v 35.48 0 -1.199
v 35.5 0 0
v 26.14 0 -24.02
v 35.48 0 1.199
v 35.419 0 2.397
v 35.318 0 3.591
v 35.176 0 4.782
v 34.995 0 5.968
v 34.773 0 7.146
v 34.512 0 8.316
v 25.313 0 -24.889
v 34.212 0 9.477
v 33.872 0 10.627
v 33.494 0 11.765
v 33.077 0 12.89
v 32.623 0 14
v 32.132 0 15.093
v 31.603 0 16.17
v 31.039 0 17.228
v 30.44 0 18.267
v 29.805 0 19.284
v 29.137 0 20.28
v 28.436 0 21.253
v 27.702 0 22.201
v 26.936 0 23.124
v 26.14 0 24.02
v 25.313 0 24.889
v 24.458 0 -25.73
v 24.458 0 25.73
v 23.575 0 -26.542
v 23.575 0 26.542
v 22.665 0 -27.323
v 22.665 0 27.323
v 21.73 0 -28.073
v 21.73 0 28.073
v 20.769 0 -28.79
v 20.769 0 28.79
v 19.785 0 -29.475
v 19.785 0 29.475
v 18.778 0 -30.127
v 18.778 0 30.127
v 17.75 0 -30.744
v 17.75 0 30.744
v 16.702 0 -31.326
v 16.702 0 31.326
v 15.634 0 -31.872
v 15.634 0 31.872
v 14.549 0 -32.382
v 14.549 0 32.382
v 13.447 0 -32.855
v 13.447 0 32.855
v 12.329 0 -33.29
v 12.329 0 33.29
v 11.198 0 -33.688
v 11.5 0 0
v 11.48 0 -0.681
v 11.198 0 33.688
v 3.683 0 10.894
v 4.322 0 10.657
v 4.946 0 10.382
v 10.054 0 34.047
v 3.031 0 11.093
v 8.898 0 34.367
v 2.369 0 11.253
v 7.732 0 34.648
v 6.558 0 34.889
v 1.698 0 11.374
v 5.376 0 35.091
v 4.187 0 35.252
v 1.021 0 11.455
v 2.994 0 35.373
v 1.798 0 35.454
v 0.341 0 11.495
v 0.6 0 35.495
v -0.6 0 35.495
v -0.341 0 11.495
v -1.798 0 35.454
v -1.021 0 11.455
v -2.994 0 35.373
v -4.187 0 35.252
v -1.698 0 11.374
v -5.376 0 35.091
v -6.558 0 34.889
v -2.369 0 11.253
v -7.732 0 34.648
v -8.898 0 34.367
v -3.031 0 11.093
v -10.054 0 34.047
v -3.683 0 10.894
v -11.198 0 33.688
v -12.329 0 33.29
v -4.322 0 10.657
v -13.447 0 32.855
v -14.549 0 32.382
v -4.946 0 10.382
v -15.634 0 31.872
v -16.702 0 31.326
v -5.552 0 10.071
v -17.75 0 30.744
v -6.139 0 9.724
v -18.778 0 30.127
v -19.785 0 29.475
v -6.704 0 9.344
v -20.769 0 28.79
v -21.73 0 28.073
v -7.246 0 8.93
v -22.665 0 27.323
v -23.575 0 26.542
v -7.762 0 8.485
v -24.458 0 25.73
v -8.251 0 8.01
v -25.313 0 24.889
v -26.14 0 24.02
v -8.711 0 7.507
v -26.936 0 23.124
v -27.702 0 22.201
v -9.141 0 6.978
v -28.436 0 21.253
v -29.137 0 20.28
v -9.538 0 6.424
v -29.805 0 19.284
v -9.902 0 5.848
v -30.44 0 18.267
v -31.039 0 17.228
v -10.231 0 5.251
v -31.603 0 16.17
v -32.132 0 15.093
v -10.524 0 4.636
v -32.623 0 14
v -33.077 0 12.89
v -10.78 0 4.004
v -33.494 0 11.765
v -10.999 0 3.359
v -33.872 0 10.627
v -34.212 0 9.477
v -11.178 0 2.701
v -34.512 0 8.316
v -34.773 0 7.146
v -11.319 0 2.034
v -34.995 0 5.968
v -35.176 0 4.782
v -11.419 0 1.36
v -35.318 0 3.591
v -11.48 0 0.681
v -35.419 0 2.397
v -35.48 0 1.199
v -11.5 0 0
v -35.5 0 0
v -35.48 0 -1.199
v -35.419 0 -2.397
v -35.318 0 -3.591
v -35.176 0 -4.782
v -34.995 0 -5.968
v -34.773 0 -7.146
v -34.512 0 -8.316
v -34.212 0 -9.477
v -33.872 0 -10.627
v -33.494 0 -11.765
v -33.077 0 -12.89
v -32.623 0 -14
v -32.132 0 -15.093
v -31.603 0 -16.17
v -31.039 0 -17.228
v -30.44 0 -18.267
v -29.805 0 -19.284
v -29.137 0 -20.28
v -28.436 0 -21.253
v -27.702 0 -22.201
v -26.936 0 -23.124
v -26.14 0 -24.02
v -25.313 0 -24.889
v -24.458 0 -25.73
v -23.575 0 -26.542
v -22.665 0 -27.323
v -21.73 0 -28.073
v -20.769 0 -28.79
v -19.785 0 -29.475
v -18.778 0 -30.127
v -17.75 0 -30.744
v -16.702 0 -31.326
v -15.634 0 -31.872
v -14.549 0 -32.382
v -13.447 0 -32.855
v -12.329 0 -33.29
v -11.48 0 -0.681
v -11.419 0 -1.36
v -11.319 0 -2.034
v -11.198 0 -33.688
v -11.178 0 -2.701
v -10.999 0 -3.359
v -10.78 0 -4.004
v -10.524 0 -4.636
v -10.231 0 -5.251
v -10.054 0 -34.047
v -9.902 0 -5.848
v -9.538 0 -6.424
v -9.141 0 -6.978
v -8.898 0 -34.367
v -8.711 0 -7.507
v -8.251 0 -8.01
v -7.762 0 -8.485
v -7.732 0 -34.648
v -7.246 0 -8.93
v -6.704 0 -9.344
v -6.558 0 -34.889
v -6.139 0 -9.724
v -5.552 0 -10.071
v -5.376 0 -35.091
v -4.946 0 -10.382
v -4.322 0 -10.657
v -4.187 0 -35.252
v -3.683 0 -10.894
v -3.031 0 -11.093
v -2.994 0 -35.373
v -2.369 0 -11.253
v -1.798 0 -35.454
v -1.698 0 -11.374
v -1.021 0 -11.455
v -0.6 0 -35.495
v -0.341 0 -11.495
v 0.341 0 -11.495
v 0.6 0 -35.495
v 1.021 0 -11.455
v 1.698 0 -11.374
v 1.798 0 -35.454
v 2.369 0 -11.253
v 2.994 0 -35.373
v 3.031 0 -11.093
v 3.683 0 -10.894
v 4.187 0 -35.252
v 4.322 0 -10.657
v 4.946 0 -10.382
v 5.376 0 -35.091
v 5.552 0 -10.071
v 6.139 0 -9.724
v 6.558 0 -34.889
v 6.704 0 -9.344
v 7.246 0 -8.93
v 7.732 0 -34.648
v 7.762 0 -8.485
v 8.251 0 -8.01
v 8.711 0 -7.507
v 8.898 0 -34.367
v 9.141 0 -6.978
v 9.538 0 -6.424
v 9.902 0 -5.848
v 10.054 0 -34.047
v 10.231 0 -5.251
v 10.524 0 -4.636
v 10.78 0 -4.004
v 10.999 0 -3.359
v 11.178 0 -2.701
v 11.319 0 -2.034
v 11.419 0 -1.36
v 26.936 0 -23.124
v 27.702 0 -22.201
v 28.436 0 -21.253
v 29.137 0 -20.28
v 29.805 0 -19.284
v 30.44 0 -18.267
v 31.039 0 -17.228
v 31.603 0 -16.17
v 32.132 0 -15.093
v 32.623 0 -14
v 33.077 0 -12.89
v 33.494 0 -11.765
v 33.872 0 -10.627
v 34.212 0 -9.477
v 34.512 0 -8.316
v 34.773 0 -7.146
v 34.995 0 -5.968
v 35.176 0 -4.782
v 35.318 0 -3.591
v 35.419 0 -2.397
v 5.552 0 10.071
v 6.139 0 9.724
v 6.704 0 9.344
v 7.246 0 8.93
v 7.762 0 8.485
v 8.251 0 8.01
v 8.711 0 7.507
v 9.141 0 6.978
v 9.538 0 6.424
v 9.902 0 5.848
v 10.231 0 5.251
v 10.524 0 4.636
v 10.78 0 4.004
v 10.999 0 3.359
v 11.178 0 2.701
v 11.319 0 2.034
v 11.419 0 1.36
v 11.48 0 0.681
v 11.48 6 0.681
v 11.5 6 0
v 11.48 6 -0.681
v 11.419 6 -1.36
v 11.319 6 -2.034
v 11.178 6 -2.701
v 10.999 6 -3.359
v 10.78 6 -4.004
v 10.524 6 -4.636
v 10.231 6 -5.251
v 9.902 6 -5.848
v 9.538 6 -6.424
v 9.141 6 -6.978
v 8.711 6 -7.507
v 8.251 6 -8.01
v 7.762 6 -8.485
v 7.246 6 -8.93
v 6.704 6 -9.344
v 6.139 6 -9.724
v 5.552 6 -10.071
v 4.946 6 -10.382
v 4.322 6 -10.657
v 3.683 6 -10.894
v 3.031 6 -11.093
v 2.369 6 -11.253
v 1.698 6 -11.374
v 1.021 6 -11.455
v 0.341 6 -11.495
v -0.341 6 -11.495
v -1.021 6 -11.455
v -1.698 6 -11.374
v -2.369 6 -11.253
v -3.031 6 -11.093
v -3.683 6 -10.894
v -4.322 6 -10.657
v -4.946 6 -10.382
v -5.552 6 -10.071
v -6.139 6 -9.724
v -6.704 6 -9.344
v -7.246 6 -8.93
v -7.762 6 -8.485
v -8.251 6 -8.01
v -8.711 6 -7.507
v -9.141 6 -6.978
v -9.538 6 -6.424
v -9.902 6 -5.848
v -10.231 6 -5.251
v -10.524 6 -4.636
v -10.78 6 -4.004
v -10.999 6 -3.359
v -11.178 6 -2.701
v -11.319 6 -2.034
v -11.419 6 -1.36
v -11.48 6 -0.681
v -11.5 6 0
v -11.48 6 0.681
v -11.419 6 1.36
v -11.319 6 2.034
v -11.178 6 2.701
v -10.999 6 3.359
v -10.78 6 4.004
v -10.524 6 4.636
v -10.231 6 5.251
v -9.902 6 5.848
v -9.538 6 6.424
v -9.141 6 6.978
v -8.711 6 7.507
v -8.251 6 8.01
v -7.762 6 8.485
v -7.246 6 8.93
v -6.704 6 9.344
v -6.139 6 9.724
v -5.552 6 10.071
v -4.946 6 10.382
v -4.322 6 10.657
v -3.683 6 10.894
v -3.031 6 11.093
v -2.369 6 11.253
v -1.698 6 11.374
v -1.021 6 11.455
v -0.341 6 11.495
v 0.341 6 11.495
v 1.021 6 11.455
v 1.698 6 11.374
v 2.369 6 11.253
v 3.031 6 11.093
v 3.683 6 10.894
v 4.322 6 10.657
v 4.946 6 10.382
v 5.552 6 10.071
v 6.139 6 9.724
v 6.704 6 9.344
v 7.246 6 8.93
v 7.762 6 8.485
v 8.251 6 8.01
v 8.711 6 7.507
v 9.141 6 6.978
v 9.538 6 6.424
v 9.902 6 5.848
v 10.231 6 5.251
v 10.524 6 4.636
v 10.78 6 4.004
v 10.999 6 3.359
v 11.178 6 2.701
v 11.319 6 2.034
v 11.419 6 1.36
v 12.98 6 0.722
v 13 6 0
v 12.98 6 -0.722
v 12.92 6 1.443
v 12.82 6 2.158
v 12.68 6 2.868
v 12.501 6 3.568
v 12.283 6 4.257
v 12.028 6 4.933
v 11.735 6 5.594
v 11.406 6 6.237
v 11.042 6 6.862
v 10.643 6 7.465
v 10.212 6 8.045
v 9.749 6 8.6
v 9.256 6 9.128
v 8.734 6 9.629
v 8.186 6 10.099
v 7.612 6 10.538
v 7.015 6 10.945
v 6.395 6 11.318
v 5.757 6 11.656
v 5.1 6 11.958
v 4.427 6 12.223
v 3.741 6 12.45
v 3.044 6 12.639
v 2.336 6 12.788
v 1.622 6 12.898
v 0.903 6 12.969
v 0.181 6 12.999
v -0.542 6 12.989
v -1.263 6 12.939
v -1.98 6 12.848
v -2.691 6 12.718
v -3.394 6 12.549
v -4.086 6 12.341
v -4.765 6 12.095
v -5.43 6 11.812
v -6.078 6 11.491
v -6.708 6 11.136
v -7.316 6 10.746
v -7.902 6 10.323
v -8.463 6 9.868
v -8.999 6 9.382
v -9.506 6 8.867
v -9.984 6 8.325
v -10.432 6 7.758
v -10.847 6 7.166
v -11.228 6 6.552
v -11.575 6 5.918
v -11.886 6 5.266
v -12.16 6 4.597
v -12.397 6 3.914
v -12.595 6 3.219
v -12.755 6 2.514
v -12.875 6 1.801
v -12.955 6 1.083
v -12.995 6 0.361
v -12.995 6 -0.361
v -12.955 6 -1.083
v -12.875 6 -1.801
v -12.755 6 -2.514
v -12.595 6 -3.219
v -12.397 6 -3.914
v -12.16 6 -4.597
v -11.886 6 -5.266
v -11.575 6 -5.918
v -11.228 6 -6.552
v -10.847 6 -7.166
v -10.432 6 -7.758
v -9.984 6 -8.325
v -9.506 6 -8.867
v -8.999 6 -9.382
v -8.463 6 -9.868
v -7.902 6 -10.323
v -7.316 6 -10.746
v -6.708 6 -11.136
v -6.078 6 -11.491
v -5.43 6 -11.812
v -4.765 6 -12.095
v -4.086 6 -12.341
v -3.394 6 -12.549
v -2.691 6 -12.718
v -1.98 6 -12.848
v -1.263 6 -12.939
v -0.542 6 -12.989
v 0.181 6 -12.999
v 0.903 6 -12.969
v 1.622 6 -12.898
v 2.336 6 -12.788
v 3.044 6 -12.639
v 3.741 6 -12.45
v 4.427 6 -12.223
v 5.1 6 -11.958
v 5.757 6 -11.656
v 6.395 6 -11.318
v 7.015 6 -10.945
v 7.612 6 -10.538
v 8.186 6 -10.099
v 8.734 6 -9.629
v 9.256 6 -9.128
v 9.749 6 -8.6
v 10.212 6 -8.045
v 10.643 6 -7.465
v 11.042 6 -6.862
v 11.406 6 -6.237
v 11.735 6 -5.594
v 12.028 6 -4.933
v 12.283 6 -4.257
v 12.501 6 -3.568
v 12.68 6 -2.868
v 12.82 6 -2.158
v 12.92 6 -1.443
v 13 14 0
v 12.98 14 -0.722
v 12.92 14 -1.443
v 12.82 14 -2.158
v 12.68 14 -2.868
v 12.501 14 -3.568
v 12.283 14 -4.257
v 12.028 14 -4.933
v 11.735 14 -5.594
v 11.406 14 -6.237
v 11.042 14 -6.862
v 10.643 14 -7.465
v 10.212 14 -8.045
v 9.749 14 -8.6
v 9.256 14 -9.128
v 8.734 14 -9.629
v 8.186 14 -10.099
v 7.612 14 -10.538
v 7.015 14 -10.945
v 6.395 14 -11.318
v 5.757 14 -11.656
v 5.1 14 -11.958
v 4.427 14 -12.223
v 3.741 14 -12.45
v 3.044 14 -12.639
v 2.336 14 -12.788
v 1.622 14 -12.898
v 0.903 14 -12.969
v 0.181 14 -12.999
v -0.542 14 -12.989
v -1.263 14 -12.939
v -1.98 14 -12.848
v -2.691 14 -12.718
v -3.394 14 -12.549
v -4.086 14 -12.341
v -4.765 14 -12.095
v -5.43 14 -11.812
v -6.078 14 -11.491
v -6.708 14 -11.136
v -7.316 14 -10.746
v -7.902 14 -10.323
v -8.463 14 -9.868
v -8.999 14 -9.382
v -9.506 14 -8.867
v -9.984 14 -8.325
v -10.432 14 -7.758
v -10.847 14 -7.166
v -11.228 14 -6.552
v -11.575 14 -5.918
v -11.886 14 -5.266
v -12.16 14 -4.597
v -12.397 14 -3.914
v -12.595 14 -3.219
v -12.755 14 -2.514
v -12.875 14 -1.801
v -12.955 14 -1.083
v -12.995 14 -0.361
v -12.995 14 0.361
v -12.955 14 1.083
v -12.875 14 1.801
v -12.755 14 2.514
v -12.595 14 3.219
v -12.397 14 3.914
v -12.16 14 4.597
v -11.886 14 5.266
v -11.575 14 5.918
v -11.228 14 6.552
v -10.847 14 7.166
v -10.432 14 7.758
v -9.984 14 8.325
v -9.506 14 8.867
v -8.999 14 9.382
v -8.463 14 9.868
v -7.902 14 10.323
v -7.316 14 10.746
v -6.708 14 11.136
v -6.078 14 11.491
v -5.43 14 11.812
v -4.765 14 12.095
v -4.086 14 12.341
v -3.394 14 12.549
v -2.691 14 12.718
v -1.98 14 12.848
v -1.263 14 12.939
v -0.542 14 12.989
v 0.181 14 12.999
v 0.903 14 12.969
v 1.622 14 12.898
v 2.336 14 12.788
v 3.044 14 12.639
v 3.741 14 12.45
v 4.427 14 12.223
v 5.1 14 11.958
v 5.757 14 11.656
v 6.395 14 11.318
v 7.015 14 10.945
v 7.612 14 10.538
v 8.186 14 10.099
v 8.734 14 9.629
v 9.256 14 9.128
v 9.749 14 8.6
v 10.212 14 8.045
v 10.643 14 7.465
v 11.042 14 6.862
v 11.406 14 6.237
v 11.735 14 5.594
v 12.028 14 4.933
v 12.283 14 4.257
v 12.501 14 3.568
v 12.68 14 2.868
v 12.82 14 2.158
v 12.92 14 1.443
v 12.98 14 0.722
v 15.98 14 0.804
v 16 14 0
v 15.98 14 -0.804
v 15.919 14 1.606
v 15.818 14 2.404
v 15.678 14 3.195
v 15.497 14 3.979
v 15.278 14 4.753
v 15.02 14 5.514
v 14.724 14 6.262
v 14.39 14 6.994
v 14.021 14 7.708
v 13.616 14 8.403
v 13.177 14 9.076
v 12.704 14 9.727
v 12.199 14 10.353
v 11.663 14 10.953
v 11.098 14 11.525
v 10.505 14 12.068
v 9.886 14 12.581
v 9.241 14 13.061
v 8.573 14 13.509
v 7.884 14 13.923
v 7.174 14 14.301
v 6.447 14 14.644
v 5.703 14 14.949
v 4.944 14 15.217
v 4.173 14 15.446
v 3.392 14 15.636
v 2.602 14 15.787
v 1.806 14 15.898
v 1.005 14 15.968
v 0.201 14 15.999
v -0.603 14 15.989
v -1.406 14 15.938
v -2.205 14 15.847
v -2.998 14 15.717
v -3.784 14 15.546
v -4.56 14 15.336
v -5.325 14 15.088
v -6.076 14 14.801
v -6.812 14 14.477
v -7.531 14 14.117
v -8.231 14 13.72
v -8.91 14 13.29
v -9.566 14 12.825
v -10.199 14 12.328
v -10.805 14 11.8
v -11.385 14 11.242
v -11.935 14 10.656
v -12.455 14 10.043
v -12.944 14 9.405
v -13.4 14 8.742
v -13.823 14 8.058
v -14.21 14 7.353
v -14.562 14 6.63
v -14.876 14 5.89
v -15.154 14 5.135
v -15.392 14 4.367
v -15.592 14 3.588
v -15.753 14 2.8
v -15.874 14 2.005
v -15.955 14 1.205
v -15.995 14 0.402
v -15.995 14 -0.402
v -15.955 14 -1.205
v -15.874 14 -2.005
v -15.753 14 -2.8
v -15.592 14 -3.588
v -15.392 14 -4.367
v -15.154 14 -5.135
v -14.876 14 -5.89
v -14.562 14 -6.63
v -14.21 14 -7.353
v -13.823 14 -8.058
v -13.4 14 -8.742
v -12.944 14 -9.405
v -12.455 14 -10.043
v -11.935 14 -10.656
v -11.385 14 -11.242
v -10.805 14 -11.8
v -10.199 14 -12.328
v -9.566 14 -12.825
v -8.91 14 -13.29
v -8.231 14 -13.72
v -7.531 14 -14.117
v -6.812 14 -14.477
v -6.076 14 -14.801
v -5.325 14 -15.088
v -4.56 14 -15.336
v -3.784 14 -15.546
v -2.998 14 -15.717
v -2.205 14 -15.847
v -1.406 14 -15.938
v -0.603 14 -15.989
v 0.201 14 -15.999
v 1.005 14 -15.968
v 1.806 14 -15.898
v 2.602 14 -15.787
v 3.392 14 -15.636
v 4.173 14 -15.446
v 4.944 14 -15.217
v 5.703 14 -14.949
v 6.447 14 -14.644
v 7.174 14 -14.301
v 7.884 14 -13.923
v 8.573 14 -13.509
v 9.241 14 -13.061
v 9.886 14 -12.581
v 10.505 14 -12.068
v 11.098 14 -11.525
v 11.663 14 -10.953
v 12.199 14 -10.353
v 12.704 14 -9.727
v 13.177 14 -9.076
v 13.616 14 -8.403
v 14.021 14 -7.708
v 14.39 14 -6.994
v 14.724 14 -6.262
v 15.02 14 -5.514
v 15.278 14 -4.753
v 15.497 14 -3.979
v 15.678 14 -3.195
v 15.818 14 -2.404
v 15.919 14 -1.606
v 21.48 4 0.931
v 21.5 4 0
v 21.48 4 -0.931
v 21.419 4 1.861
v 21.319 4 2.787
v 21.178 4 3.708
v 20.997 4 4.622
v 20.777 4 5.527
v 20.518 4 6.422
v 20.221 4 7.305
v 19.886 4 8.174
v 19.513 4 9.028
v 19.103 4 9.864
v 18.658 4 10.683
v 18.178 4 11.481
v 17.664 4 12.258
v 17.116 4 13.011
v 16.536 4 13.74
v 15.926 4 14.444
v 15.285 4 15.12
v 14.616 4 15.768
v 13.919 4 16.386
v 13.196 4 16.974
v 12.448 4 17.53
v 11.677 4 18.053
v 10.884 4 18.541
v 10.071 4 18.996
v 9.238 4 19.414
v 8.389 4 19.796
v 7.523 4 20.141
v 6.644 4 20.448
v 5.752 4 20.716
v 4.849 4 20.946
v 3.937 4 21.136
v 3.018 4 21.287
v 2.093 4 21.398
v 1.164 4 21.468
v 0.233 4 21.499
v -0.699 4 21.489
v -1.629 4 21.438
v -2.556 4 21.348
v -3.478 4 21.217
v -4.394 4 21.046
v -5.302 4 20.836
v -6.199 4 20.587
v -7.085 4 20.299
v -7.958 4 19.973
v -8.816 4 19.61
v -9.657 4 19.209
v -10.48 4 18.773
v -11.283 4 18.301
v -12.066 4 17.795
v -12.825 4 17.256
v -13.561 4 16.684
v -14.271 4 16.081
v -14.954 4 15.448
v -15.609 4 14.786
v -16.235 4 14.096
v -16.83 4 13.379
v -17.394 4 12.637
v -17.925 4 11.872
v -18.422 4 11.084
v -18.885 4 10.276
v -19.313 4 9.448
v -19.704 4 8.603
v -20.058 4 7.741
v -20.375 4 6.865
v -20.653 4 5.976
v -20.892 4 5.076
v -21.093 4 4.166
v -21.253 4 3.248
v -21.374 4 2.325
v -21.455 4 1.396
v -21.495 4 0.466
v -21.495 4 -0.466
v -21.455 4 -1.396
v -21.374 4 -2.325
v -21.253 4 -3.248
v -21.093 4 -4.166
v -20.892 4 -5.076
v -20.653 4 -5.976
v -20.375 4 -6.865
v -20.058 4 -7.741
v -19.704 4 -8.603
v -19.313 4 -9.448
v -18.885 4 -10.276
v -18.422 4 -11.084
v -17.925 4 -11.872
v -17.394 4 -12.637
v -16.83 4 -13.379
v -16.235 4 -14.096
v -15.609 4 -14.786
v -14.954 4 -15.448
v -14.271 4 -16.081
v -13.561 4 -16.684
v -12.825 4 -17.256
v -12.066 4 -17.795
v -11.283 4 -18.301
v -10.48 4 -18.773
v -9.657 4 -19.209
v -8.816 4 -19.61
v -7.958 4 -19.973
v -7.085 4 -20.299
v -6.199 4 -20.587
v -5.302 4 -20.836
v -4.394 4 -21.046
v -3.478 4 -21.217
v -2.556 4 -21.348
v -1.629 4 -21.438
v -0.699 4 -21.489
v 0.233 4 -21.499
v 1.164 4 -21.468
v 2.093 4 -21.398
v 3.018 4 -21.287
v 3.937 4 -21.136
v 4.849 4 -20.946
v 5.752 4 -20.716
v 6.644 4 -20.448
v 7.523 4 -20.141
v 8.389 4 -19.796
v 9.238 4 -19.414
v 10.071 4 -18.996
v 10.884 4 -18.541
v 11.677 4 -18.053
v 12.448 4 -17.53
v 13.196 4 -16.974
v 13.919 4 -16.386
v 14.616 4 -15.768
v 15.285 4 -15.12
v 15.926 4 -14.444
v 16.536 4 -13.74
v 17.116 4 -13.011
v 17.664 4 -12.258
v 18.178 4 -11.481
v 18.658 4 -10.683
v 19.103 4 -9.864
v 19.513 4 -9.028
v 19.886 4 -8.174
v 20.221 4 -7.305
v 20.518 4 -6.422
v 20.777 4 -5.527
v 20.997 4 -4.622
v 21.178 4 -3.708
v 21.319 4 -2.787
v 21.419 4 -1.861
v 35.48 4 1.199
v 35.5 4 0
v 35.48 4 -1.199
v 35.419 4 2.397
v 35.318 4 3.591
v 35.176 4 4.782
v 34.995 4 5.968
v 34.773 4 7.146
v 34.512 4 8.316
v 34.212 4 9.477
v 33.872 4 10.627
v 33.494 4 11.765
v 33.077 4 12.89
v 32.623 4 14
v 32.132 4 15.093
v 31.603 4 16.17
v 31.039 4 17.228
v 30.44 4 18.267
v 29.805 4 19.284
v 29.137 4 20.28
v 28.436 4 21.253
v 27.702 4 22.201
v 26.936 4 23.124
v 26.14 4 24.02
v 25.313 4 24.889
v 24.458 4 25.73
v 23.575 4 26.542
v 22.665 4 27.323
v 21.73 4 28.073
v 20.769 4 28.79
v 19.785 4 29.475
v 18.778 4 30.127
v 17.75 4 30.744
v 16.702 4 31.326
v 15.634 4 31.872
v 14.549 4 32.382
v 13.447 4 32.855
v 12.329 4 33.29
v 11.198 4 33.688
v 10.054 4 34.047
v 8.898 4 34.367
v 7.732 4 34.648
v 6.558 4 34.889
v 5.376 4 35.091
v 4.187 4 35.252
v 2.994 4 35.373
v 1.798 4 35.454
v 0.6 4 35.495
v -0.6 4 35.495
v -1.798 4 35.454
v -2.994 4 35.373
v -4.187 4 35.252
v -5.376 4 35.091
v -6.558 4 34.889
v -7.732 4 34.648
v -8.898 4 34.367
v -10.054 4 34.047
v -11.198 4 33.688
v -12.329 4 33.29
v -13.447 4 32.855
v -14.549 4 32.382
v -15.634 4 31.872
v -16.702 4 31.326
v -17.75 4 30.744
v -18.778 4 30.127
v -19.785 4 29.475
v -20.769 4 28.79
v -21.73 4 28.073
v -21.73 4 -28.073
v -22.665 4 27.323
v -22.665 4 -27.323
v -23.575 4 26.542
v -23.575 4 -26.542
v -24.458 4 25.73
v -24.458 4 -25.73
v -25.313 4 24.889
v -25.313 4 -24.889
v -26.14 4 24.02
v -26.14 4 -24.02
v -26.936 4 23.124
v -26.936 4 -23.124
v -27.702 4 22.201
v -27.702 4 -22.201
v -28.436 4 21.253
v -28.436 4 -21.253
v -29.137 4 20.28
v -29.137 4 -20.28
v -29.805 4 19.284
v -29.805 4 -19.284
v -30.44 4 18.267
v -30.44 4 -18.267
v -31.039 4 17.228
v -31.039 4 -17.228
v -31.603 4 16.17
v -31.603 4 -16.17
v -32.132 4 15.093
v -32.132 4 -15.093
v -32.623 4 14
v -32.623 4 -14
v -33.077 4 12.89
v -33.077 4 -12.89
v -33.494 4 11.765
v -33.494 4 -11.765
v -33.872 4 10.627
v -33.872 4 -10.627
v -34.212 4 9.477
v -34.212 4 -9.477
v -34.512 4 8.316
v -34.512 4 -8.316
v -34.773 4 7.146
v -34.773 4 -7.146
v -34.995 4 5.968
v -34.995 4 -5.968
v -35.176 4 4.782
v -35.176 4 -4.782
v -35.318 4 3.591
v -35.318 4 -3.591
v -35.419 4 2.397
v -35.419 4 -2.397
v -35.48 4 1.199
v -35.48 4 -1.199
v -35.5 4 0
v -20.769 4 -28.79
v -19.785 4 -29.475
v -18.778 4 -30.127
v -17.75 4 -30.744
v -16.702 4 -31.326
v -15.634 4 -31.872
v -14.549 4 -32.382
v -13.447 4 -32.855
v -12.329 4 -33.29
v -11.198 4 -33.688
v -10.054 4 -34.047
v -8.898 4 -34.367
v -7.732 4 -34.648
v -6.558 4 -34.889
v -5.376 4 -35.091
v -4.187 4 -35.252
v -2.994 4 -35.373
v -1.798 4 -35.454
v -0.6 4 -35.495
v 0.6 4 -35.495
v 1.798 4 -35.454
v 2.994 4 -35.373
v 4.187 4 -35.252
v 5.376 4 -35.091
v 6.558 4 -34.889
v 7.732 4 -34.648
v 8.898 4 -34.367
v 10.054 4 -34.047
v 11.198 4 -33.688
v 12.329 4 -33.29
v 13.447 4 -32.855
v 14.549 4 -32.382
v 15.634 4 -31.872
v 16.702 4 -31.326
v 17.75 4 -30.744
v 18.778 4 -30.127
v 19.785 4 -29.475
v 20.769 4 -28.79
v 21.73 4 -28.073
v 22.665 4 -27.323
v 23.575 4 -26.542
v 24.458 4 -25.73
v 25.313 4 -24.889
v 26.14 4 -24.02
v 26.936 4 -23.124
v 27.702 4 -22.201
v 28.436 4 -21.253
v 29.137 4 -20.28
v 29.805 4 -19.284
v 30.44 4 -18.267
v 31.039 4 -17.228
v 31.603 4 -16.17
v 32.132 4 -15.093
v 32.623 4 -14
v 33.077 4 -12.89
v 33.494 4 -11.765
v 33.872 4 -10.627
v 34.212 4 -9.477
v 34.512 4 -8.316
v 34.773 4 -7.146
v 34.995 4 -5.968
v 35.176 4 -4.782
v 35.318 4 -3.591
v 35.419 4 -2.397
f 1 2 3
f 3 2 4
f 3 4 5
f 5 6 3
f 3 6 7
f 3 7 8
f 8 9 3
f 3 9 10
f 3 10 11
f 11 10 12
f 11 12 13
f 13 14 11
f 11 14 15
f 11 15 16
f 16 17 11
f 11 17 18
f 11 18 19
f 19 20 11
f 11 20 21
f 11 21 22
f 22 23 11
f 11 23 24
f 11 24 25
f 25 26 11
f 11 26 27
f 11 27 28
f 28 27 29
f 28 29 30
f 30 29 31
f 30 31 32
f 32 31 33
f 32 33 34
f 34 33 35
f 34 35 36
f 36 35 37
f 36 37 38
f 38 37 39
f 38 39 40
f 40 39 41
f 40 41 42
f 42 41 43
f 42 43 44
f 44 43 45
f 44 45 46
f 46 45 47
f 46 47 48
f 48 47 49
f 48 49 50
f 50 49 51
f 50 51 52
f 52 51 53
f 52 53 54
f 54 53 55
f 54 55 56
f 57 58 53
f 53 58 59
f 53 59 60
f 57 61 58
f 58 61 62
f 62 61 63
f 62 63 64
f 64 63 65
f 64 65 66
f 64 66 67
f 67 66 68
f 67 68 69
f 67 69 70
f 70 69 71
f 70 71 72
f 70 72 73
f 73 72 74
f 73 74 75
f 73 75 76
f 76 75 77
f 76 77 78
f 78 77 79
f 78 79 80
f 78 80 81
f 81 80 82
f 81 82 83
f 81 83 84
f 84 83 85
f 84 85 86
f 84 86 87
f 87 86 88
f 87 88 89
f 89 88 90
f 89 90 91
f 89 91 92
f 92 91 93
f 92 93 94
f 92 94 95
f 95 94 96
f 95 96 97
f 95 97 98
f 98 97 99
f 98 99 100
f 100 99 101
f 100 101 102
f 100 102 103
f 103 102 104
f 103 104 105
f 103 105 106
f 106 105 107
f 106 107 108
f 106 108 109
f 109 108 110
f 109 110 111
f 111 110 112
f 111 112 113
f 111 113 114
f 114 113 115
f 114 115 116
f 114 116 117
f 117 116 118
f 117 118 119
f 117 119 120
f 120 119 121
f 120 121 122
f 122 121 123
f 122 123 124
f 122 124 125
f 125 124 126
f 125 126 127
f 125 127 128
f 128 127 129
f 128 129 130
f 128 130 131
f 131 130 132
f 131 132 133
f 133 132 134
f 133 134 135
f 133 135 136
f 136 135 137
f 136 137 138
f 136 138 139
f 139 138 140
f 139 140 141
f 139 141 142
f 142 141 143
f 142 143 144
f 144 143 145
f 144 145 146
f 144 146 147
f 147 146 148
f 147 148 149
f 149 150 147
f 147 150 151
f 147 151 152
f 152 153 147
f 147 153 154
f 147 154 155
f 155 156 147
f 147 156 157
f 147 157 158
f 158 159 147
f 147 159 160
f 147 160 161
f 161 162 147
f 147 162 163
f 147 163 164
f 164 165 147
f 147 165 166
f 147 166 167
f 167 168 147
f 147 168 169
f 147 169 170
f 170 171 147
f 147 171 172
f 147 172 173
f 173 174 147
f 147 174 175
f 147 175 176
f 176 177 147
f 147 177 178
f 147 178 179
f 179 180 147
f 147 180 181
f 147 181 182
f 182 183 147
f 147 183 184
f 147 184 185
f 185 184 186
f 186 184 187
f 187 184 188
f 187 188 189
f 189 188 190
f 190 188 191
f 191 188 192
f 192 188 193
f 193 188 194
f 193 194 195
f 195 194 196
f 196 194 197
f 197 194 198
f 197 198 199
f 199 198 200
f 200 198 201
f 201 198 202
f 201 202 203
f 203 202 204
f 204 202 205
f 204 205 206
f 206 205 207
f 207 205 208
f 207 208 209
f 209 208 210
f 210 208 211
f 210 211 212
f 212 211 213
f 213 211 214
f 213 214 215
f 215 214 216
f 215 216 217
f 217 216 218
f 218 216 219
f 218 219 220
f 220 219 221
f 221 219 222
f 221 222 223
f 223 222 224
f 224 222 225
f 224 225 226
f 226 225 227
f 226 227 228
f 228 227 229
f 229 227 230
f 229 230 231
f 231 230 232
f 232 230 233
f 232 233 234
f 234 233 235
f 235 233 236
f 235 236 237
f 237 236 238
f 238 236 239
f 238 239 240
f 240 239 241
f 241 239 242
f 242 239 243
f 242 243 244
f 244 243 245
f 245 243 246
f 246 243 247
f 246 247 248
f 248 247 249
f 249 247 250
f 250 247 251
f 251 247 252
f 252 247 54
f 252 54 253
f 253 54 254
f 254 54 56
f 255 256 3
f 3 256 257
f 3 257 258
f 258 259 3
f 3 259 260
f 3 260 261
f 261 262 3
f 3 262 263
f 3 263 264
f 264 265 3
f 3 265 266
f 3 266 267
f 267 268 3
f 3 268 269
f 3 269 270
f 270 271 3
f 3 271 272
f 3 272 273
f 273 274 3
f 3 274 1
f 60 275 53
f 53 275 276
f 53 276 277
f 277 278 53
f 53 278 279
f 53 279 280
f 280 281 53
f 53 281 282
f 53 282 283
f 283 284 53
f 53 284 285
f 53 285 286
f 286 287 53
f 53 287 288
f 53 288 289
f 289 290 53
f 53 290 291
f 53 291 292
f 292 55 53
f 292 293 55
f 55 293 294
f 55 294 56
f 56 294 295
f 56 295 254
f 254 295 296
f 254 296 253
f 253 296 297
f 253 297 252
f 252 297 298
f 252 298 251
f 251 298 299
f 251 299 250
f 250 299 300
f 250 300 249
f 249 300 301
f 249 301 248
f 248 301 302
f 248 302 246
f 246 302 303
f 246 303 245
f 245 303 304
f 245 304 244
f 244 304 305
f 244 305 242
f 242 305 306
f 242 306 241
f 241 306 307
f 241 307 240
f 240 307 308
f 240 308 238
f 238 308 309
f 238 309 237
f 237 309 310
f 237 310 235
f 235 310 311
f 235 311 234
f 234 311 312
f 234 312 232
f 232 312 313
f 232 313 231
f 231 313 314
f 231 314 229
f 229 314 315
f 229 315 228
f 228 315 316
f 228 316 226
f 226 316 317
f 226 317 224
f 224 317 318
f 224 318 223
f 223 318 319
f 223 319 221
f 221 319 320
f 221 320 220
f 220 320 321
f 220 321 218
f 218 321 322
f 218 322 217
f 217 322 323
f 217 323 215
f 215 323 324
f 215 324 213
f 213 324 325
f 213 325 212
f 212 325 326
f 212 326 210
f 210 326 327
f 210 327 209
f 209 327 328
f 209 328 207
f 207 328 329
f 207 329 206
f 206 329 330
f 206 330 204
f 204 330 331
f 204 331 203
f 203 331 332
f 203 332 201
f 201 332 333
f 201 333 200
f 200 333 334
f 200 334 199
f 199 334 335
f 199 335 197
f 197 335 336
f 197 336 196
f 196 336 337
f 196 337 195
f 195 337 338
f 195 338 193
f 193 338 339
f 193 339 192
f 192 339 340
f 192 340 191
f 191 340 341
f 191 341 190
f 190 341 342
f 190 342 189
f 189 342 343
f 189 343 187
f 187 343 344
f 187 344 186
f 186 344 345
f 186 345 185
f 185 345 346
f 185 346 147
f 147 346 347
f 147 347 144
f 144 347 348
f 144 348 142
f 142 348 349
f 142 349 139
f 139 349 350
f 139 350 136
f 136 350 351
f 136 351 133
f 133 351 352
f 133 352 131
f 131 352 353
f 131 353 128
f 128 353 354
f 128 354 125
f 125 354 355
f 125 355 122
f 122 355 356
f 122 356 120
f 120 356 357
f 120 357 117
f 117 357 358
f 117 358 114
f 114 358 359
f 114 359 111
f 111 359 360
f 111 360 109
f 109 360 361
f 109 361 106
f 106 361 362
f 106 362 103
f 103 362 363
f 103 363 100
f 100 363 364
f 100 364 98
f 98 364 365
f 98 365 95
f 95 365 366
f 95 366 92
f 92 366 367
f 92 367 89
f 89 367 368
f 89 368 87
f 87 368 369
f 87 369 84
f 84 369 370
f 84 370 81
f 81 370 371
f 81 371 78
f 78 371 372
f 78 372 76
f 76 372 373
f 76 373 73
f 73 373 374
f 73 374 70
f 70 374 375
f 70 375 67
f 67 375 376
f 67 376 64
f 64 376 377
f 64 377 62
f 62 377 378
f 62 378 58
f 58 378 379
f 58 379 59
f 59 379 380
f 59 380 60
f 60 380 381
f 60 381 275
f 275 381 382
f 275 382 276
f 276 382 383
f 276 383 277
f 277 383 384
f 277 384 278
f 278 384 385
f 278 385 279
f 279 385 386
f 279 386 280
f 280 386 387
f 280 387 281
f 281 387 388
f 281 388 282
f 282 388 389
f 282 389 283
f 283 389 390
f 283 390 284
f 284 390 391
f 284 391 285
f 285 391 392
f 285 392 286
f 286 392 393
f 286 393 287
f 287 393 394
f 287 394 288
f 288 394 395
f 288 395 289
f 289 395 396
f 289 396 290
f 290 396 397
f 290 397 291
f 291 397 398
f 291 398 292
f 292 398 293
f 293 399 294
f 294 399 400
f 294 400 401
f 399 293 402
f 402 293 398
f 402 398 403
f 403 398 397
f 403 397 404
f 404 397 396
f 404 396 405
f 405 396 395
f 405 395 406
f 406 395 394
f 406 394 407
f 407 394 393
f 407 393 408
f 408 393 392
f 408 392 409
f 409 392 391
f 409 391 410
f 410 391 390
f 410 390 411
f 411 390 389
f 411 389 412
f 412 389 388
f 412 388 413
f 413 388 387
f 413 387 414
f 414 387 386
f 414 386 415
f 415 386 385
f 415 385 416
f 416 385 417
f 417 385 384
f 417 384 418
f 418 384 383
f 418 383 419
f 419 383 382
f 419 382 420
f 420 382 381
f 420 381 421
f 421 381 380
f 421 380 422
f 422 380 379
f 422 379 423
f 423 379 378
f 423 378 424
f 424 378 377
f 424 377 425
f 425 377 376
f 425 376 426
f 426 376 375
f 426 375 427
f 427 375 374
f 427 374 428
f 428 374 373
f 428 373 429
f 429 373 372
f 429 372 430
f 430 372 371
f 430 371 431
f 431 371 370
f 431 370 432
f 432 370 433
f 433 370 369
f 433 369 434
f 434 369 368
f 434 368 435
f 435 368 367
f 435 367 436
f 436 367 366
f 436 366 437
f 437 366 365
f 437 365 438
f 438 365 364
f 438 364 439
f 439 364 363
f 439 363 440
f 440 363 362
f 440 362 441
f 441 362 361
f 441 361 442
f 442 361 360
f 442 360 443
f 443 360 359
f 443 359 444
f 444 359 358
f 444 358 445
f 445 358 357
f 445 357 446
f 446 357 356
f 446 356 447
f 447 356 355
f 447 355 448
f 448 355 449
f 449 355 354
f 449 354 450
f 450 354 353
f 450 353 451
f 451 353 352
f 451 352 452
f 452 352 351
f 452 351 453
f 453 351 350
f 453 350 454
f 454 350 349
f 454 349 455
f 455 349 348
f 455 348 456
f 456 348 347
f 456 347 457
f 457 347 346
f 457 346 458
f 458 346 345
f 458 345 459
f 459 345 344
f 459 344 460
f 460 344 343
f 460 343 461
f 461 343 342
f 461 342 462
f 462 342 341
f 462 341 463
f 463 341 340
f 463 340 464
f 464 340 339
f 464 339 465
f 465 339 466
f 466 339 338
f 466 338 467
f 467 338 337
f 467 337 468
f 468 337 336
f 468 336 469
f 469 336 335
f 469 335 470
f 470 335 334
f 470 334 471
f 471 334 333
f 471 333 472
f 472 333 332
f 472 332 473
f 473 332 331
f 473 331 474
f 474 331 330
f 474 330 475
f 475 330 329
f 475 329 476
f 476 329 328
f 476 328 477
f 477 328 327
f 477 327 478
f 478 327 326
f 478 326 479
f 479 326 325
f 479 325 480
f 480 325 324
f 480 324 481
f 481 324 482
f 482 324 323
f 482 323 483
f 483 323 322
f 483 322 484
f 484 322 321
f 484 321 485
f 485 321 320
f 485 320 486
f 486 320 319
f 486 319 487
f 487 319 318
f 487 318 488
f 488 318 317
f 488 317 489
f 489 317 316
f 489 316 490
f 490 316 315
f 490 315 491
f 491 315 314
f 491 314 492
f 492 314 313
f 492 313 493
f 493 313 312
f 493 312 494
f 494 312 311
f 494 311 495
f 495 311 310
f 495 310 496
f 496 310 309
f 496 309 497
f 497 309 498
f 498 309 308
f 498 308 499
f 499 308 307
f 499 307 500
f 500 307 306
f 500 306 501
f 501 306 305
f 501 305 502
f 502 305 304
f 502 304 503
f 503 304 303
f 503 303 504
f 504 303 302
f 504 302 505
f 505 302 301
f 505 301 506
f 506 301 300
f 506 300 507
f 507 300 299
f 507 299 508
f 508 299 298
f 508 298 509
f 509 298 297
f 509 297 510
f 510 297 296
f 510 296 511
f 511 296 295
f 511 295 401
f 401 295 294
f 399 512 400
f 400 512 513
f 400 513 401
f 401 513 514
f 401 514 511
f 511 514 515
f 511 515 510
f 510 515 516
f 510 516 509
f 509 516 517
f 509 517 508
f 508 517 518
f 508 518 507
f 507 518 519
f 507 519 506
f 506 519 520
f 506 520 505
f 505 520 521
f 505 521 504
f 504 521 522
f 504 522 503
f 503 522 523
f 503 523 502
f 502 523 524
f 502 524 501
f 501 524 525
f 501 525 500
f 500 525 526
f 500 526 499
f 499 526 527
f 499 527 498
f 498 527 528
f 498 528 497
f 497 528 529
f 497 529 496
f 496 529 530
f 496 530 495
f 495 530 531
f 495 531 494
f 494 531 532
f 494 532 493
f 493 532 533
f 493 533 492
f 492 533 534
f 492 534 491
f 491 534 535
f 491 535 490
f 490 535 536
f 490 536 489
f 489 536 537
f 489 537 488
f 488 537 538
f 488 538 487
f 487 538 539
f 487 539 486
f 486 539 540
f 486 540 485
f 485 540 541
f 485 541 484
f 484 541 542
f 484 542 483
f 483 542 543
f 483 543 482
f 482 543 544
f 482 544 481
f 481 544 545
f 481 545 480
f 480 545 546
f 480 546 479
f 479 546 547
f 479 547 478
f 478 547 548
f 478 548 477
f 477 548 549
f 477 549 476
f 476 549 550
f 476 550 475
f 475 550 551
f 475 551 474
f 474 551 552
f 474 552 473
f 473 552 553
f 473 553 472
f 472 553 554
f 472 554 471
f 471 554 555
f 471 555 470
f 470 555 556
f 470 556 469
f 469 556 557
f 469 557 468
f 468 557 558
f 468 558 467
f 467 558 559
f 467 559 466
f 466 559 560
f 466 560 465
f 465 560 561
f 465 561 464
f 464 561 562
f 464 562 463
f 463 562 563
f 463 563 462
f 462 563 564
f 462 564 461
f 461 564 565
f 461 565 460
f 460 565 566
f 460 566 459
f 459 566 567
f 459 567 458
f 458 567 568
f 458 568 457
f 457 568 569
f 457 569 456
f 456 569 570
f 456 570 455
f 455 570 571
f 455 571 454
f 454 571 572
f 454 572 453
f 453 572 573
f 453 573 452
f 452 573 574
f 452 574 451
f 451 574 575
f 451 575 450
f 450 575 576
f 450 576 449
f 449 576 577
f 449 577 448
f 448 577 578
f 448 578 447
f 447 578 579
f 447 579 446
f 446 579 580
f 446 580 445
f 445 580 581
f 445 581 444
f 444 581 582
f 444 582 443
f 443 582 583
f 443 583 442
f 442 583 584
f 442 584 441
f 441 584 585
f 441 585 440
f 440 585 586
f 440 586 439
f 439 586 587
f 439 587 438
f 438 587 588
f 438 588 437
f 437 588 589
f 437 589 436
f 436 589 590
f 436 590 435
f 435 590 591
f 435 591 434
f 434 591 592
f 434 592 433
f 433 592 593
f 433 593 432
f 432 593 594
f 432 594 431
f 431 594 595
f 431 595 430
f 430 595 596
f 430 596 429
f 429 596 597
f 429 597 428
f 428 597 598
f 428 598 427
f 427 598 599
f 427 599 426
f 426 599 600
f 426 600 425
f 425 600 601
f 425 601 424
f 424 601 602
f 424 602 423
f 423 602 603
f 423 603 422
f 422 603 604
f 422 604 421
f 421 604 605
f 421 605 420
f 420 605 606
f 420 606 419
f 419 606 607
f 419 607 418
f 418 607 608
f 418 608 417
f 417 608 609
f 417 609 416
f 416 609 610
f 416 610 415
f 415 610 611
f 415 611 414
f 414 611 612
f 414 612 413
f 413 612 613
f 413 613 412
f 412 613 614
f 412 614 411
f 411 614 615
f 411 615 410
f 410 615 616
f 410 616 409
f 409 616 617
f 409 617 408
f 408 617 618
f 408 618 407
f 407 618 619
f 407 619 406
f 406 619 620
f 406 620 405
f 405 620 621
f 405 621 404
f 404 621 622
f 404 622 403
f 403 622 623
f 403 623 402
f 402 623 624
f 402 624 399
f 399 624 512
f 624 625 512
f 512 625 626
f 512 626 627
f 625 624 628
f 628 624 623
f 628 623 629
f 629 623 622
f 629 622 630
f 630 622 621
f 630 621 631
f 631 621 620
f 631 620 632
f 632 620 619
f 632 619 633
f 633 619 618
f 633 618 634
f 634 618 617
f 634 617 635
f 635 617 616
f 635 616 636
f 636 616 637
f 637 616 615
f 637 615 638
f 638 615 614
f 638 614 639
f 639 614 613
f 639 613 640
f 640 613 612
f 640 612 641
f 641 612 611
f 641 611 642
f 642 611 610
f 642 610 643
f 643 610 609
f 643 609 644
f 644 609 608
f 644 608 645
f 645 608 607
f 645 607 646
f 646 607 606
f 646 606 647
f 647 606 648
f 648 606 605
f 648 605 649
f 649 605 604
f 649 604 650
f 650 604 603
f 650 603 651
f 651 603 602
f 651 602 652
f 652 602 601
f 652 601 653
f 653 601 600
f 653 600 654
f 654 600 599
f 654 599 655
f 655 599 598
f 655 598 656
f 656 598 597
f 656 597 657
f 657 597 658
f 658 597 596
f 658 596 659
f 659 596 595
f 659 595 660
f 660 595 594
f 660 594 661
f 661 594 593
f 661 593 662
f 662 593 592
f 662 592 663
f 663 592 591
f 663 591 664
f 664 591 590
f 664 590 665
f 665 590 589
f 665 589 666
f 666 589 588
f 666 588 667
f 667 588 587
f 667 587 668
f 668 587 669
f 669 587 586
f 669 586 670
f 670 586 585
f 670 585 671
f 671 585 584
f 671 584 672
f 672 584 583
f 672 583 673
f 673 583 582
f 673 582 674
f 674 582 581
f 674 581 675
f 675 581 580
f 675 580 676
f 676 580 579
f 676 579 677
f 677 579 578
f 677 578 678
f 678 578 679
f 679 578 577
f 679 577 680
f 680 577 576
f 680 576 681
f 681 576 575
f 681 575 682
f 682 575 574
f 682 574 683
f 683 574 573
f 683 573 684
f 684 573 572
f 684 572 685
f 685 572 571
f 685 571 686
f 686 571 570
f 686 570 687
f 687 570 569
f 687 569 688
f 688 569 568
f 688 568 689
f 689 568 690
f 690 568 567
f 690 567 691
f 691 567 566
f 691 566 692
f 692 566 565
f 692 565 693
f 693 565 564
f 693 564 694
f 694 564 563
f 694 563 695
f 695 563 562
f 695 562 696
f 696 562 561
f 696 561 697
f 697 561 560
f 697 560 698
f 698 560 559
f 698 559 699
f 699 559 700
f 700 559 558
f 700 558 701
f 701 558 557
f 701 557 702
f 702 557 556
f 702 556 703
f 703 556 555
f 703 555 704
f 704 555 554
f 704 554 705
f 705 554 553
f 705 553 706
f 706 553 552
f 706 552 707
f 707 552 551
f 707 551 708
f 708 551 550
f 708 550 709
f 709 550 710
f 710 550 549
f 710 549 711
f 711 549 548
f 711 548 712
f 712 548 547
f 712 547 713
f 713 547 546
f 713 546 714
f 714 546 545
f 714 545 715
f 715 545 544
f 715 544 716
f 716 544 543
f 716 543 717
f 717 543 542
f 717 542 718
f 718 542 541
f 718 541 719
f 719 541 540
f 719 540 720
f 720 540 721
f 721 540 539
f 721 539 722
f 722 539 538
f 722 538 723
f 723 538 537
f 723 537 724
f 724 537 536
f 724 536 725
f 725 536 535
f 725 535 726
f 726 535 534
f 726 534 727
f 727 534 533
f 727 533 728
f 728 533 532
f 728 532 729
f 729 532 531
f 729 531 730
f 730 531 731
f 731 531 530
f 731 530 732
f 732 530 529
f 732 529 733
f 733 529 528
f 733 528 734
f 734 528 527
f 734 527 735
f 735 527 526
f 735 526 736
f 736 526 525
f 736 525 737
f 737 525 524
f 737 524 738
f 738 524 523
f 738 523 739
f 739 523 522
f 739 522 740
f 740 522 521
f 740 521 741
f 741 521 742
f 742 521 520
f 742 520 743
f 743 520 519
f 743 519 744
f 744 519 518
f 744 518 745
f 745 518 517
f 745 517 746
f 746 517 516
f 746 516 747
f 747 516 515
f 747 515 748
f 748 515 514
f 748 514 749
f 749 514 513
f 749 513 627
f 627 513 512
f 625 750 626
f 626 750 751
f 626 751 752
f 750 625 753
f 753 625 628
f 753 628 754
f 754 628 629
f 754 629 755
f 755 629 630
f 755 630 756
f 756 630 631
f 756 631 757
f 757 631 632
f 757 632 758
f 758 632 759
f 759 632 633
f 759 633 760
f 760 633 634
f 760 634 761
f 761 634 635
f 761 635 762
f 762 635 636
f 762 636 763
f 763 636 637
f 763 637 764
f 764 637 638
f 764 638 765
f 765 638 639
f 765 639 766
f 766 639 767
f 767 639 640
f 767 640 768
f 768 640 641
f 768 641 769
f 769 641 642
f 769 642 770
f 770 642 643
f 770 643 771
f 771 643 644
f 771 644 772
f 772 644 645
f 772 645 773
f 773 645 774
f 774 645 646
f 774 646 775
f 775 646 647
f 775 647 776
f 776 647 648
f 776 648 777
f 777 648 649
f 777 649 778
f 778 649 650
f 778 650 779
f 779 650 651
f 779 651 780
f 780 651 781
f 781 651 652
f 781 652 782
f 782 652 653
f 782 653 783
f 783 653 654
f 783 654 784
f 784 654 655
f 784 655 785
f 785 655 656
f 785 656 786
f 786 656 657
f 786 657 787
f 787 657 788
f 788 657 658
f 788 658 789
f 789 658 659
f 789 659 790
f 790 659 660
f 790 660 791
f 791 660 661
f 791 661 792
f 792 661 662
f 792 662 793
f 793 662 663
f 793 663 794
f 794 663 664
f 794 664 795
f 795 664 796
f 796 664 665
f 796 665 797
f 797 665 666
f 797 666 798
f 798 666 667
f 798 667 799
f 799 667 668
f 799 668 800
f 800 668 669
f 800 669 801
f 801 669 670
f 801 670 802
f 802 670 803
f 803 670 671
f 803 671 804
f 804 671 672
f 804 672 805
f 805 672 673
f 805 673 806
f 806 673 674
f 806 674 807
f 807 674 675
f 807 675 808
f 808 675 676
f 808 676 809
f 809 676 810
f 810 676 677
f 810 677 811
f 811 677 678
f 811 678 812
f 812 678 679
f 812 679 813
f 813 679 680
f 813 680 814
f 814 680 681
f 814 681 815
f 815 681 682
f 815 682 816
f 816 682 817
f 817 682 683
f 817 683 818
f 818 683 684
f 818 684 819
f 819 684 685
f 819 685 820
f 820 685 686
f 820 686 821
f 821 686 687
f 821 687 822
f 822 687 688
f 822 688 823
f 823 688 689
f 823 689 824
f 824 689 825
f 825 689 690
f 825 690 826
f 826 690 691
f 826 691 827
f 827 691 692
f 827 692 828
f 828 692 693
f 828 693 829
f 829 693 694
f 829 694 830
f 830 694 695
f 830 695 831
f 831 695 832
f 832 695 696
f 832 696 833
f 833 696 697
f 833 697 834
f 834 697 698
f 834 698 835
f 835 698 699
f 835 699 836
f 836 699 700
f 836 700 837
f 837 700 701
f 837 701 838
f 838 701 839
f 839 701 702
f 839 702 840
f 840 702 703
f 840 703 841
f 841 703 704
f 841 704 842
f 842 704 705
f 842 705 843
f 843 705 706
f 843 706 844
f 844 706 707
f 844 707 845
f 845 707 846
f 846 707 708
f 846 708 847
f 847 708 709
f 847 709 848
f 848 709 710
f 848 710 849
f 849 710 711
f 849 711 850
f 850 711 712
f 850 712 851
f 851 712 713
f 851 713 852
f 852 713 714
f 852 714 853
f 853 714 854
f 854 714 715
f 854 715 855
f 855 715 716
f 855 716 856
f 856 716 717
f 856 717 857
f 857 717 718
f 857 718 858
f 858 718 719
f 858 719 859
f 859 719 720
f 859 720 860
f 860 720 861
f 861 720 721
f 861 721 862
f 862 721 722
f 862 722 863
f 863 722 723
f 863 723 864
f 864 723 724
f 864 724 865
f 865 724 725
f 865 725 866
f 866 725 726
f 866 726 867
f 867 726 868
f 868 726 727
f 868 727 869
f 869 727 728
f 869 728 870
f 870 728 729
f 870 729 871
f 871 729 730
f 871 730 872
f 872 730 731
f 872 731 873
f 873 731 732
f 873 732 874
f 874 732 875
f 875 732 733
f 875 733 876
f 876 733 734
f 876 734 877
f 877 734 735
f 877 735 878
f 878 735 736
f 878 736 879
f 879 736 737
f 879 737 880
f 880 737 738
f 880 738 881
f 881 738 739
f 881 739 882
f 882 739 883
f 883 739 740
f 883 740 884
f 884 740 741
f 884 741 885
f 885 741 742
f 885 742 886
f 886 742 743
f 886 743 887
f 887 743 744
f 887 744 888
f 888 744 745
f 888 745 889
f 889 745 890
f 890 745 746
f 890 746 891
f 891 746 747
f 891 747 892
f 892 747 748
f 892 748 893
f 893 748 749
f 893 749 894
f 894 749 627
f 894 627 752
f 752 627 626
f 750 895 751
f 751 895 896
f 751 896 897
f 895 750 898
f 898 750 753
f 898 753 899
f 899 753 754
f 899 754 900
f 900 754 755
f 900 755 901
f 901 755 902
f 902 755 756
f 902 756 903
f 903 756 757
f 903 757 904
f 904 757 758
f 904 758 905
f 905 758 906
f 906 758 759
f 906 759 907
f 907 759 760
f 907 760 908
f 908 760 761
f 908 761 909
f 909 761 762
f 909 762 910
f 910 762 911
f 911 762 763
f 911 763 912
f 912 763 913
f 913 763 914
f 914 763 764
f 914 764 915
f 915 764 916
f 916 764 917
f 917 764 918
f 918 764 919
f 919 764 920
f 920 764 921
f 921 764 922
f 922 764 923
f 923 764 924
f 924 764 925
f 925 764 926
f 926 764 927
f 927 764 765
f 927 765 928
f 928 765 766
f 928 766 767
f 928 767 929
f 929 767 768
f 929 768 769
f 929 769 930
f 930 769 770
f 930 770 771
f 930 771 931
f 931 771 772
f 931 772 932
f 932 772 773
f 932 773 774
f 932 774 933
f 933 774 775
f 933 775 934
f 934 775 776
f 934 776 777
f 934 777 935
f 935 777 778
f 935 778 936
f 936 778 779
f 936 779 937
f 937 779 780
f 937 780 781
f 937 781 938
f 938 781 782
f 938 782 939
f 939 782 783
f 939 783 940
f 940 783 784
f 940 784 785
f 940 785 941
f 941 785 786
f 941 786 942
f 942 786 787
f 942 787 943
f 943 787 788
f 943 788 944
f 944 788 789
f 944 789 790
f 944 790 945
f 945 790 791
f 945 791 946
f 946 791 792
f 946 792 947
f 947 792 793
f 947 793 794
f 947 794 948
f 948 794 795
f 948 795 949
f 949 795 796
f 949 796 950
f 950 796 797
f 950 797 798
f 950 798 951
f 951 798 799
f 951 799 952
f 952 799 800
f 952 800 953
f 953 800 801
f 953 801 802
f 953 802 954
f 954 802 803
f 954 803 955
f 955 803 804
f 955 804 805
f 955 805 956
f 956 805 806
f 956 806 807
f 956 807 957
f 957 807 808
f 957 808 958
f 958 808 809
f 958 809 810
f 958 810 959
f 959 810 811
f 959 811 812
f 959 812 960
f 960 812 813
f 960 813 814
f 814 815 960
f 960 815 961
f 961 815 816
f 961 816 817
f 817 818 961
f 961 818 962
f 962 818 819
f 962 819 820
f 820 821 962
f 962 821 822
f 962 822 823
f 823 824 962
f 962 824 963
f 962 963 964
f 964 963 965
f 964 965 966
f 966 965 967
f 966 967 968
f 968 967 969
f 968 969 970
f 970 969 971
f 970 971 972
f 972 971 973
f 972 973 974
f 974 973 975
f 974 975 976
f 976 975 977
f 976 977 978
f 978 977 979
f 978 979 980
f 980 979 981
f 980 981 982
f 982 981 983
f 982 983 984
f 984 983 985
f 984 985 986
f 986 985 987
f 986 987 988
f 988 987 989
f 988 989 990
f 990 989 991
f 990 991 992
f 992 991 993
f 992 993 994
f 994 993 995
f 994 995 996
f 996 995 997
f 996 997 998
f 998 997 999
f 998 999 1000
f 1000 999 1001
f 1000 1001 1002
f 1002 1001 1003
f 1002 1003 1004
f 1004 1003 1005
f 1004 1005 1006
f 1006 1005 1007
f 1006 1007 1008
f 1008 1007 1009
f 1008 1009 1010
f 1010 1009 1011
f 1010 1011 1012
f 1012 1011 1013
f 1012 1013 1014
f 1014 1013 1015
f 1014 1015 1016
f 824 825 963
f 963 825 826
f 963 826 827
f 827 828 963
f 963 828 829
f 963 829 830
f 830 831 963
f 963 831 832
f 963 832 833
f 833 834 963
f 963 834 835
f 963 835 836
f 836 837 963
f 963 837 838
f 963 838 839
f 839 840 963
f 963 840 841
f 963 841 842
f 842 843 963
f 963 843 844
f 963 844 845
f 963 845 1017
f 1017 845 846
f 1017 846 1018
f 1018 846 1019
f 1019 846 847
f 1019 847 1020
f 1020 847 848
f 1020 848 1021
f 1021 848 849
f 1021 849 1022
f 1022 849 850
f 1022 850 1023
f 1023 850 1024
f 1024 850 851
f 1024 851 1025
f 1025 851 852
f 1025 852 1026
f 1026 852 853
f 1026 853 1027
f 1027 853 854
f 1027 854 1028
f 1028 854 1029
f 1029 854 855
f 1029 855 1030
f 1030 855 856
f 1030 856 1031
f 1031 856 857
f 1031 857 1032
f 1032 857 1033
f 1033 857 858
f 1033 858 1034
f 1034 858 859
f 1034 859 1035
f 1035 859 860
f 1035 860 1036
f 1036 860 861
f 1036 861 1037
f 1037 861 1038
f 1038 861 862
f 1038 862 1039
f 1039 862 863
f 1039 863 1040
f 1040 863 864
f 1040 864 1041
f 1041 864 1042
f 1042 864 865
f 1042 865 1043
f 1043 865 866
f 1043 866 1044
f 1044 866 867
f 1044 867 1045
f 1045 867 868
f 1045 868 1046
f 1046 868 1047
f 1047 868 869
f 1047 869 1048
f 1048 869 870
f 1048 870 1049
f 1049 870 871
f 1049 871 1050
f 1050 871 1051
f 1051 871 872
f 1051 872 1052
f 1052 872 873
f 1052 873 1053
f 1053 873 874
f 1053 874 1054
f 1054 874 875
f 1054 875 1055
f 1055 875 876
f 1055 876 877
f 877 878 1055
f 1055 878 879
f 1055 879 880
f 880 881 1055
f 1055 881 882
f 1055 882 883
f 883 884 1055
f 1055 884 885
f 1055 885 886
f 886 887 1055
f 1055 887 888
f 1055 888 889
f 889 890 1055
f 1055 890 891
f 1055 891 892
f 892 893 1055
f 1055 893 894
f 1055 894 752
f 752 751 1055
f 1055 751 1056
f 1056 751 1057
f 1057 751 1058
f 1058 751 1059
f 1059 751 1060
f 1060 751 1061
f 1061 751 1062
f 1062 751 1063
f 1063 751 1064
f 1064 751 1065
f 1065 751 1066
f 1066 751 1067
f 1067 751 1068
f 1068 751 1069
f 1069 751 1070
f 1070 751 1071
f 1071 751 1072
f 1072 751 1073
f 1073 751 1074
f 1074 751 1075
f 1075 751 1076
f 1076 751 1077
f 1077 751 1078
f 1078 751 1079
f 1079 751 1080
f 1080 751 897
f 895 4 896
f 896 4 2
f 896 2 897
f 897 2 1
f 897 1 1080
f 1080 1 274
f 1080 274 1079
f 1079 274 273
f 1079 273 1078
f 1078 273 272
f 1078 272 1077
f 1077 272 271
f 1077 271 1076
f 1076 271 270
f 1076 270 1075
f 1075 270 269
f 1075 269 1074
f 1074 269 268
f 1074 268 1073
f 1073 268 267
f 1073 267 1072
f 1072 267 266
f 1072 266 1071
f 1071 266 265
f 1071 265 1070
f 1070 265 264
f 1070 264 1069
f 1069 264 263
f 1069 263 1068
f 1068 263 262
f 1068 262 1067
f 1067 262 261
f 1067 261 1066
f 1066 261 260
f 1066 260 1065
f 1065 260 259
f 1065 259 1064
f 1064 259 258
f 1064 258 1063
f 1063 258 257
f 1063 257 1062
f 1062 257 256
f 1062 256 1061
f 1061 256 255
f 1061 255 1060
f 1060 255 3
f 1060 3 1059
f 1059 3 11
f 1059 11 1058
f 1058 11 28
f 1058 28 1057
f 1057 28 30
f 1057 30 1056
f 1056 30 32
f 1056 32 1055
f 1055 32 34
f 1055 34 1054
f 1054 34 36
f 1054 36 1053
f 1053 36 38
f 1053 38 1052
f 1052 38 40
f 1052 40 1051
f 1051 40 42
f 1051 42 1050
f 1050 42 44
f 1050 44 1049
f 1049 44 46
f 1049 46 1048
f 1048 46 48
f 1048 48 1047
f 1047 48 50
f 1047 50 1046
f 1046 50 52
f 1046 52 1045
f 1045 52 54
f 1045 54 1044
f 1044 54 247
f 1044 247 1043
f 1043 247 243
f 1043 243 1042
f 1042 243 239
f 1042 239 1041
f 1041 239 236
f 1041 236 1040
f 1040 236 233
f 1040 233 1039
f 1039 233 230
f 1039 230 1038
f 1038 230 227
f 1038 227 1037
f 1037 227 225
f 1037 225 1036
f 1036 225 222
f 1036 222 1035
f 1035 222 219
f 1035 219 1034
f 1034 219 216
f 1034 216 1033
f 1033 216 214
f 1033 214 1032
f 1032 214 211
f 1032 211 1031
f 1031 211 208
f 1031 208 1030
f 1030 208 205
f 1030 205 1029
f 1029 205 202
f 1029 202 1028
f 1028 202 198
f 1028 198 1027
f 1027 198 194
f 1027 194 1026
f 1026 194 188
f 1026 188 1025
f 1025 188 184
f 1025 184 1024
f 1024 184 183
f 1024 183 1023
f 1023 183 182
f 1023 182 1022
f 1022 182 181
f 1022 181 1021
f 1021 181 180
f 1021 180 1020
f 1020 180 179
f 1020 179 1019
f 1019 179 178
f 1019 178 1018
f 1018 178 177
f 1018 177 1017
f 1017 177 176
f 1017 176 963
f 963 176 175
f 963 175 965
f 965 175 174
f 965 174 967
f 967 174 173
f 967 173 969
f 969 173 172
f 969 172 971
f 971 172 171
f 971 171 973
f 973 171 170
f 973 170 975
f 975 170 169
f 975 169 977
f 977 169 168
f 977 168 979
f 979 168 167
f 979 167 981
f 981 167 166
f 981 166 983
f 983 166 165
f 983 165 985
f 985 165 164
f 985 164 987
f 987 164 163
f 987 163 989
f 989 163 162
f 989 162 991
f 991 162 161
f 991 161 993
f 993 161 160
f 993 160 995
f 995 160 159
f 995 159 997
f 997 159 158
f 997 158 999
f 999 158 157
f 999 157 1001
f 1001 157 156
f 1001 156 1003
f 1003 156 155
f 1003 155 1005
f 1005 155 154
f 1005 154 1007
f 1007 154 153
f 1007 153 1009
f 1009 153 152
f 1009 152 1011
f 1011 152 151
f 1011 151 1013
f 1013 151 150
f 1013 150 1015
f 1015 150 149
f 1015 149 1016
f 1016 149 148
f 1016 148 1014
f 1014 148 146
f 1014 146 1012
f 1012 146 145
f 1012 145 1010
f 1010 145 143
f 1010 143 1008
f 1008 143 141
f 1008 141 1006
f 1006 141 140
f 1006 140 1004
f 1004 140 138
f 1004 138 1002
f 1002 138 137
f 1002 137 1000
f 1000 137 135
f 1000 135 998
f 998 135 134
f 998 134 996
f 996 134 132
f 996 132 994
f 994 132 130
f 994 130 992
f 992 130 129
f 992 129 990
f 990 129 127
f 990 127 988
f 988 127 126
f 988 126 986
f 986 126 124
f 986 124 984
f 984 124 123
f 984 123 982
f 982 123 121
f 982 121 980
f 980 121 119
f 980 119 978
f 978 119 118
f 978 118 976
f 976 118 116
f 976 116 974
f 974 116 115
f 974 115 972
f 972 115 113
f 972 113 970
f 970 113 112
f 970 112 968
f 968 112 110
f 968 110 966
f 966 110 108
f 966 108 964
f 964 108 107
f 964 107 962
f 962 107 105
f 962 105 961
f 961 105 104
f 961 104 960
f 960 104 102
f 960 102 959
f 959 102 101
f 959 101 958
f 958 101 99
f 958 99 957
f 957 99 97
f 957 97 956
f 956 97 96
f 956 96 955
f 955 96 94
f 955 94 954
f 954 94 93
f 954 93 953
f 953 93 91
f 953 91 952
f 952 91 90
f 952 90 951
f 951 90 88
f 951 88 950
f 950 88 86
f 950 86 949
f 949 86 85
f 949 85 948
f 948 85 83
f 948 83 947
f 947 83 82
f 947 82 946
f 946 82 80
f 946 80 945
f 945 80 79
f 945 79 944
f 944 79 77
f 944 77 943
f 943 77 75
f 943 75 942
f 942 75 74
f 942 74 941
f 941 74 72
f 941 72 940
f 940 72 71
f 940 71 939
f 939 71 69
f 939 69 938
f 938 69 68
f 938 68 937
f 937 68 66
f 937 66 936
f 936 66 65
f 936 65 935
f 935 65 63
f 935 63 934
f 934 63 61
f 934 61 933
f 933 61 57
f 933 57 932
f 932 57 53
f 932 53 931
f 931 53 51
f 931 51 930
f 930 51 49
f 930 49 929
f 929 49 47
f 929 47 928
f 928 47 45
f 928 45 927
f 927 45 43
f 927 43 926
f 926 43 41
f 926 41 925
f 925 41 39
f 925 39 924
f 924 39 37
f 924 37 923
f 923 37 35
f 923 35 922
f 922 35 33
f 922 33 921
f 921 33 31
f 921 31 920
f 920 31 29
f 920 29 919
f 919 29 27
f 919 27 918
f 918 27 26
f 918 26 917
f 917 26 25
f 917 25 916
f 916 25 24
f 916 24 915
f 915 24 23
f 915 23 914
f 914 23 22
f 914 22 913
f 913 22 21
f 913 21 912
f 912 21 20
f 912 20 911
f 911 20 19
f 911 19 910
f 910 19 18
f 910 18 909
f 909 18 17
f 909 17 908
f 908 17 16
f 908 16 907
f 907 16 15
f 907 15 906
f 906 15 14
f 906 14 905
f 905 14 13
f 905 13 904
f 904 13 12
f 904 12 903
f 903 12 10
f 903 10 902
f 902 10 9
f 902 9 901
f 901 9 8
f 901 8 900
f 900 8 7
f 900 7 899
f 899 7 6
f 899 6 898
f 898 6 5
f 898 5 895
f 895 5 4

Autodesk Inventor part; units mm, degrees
ref_plane "YZ Plane" through (0, 0, 0) normal (1, 0, 0) x (0, 1, 0)
ref_plane "XZ Plane" through (0, 0, 0) normal (0, 1, 0) x (-1, 0, 0)
ref_plane "XY Plane" through (0, 0, 0) normal (0, 0, 1) x (1, 0, 0)
sketch "Sketch2" plane through (0, 0, 0) normal (0, 0, 1) x (1, 0, 0)
  line L0 (11.5, 0) -> (35.5, 0)
  line L1 (35.5, 0) -> (35.5, 4)
  line L2 (35.5, 4) -> (21.5, 4)
  line L3 (21.5, 4) -> (16, 14)
  line L4 (16, 14) -> (13, 14)
  line L5 (13, 14) -> (13, 6)
  line L6 (13, 6) -> (11.5, 6)
  line L7 (11.5, 6) -> (11.5, 0)
  line L8 (0, -2.8) -> (0, 16.8) projected
  point P0 (0, 0)
  dimension "d0" = 13
  dimension "d1" = 1.5
  dimension "d2" = 3
  dimension "d3" = 24
  dimension "d4" = 6
  dimension "d5" = 8
  dimension "d6" = 0
  dimension "d7" = 4
  dimension "d8" = 14
revolve "Revolution1" add sketch "Sketch2" angle 360 about axis through (0, -10, 0) along (0, 1, 0)
properties part number "base reaction wheel" material "ABS Plastic"
